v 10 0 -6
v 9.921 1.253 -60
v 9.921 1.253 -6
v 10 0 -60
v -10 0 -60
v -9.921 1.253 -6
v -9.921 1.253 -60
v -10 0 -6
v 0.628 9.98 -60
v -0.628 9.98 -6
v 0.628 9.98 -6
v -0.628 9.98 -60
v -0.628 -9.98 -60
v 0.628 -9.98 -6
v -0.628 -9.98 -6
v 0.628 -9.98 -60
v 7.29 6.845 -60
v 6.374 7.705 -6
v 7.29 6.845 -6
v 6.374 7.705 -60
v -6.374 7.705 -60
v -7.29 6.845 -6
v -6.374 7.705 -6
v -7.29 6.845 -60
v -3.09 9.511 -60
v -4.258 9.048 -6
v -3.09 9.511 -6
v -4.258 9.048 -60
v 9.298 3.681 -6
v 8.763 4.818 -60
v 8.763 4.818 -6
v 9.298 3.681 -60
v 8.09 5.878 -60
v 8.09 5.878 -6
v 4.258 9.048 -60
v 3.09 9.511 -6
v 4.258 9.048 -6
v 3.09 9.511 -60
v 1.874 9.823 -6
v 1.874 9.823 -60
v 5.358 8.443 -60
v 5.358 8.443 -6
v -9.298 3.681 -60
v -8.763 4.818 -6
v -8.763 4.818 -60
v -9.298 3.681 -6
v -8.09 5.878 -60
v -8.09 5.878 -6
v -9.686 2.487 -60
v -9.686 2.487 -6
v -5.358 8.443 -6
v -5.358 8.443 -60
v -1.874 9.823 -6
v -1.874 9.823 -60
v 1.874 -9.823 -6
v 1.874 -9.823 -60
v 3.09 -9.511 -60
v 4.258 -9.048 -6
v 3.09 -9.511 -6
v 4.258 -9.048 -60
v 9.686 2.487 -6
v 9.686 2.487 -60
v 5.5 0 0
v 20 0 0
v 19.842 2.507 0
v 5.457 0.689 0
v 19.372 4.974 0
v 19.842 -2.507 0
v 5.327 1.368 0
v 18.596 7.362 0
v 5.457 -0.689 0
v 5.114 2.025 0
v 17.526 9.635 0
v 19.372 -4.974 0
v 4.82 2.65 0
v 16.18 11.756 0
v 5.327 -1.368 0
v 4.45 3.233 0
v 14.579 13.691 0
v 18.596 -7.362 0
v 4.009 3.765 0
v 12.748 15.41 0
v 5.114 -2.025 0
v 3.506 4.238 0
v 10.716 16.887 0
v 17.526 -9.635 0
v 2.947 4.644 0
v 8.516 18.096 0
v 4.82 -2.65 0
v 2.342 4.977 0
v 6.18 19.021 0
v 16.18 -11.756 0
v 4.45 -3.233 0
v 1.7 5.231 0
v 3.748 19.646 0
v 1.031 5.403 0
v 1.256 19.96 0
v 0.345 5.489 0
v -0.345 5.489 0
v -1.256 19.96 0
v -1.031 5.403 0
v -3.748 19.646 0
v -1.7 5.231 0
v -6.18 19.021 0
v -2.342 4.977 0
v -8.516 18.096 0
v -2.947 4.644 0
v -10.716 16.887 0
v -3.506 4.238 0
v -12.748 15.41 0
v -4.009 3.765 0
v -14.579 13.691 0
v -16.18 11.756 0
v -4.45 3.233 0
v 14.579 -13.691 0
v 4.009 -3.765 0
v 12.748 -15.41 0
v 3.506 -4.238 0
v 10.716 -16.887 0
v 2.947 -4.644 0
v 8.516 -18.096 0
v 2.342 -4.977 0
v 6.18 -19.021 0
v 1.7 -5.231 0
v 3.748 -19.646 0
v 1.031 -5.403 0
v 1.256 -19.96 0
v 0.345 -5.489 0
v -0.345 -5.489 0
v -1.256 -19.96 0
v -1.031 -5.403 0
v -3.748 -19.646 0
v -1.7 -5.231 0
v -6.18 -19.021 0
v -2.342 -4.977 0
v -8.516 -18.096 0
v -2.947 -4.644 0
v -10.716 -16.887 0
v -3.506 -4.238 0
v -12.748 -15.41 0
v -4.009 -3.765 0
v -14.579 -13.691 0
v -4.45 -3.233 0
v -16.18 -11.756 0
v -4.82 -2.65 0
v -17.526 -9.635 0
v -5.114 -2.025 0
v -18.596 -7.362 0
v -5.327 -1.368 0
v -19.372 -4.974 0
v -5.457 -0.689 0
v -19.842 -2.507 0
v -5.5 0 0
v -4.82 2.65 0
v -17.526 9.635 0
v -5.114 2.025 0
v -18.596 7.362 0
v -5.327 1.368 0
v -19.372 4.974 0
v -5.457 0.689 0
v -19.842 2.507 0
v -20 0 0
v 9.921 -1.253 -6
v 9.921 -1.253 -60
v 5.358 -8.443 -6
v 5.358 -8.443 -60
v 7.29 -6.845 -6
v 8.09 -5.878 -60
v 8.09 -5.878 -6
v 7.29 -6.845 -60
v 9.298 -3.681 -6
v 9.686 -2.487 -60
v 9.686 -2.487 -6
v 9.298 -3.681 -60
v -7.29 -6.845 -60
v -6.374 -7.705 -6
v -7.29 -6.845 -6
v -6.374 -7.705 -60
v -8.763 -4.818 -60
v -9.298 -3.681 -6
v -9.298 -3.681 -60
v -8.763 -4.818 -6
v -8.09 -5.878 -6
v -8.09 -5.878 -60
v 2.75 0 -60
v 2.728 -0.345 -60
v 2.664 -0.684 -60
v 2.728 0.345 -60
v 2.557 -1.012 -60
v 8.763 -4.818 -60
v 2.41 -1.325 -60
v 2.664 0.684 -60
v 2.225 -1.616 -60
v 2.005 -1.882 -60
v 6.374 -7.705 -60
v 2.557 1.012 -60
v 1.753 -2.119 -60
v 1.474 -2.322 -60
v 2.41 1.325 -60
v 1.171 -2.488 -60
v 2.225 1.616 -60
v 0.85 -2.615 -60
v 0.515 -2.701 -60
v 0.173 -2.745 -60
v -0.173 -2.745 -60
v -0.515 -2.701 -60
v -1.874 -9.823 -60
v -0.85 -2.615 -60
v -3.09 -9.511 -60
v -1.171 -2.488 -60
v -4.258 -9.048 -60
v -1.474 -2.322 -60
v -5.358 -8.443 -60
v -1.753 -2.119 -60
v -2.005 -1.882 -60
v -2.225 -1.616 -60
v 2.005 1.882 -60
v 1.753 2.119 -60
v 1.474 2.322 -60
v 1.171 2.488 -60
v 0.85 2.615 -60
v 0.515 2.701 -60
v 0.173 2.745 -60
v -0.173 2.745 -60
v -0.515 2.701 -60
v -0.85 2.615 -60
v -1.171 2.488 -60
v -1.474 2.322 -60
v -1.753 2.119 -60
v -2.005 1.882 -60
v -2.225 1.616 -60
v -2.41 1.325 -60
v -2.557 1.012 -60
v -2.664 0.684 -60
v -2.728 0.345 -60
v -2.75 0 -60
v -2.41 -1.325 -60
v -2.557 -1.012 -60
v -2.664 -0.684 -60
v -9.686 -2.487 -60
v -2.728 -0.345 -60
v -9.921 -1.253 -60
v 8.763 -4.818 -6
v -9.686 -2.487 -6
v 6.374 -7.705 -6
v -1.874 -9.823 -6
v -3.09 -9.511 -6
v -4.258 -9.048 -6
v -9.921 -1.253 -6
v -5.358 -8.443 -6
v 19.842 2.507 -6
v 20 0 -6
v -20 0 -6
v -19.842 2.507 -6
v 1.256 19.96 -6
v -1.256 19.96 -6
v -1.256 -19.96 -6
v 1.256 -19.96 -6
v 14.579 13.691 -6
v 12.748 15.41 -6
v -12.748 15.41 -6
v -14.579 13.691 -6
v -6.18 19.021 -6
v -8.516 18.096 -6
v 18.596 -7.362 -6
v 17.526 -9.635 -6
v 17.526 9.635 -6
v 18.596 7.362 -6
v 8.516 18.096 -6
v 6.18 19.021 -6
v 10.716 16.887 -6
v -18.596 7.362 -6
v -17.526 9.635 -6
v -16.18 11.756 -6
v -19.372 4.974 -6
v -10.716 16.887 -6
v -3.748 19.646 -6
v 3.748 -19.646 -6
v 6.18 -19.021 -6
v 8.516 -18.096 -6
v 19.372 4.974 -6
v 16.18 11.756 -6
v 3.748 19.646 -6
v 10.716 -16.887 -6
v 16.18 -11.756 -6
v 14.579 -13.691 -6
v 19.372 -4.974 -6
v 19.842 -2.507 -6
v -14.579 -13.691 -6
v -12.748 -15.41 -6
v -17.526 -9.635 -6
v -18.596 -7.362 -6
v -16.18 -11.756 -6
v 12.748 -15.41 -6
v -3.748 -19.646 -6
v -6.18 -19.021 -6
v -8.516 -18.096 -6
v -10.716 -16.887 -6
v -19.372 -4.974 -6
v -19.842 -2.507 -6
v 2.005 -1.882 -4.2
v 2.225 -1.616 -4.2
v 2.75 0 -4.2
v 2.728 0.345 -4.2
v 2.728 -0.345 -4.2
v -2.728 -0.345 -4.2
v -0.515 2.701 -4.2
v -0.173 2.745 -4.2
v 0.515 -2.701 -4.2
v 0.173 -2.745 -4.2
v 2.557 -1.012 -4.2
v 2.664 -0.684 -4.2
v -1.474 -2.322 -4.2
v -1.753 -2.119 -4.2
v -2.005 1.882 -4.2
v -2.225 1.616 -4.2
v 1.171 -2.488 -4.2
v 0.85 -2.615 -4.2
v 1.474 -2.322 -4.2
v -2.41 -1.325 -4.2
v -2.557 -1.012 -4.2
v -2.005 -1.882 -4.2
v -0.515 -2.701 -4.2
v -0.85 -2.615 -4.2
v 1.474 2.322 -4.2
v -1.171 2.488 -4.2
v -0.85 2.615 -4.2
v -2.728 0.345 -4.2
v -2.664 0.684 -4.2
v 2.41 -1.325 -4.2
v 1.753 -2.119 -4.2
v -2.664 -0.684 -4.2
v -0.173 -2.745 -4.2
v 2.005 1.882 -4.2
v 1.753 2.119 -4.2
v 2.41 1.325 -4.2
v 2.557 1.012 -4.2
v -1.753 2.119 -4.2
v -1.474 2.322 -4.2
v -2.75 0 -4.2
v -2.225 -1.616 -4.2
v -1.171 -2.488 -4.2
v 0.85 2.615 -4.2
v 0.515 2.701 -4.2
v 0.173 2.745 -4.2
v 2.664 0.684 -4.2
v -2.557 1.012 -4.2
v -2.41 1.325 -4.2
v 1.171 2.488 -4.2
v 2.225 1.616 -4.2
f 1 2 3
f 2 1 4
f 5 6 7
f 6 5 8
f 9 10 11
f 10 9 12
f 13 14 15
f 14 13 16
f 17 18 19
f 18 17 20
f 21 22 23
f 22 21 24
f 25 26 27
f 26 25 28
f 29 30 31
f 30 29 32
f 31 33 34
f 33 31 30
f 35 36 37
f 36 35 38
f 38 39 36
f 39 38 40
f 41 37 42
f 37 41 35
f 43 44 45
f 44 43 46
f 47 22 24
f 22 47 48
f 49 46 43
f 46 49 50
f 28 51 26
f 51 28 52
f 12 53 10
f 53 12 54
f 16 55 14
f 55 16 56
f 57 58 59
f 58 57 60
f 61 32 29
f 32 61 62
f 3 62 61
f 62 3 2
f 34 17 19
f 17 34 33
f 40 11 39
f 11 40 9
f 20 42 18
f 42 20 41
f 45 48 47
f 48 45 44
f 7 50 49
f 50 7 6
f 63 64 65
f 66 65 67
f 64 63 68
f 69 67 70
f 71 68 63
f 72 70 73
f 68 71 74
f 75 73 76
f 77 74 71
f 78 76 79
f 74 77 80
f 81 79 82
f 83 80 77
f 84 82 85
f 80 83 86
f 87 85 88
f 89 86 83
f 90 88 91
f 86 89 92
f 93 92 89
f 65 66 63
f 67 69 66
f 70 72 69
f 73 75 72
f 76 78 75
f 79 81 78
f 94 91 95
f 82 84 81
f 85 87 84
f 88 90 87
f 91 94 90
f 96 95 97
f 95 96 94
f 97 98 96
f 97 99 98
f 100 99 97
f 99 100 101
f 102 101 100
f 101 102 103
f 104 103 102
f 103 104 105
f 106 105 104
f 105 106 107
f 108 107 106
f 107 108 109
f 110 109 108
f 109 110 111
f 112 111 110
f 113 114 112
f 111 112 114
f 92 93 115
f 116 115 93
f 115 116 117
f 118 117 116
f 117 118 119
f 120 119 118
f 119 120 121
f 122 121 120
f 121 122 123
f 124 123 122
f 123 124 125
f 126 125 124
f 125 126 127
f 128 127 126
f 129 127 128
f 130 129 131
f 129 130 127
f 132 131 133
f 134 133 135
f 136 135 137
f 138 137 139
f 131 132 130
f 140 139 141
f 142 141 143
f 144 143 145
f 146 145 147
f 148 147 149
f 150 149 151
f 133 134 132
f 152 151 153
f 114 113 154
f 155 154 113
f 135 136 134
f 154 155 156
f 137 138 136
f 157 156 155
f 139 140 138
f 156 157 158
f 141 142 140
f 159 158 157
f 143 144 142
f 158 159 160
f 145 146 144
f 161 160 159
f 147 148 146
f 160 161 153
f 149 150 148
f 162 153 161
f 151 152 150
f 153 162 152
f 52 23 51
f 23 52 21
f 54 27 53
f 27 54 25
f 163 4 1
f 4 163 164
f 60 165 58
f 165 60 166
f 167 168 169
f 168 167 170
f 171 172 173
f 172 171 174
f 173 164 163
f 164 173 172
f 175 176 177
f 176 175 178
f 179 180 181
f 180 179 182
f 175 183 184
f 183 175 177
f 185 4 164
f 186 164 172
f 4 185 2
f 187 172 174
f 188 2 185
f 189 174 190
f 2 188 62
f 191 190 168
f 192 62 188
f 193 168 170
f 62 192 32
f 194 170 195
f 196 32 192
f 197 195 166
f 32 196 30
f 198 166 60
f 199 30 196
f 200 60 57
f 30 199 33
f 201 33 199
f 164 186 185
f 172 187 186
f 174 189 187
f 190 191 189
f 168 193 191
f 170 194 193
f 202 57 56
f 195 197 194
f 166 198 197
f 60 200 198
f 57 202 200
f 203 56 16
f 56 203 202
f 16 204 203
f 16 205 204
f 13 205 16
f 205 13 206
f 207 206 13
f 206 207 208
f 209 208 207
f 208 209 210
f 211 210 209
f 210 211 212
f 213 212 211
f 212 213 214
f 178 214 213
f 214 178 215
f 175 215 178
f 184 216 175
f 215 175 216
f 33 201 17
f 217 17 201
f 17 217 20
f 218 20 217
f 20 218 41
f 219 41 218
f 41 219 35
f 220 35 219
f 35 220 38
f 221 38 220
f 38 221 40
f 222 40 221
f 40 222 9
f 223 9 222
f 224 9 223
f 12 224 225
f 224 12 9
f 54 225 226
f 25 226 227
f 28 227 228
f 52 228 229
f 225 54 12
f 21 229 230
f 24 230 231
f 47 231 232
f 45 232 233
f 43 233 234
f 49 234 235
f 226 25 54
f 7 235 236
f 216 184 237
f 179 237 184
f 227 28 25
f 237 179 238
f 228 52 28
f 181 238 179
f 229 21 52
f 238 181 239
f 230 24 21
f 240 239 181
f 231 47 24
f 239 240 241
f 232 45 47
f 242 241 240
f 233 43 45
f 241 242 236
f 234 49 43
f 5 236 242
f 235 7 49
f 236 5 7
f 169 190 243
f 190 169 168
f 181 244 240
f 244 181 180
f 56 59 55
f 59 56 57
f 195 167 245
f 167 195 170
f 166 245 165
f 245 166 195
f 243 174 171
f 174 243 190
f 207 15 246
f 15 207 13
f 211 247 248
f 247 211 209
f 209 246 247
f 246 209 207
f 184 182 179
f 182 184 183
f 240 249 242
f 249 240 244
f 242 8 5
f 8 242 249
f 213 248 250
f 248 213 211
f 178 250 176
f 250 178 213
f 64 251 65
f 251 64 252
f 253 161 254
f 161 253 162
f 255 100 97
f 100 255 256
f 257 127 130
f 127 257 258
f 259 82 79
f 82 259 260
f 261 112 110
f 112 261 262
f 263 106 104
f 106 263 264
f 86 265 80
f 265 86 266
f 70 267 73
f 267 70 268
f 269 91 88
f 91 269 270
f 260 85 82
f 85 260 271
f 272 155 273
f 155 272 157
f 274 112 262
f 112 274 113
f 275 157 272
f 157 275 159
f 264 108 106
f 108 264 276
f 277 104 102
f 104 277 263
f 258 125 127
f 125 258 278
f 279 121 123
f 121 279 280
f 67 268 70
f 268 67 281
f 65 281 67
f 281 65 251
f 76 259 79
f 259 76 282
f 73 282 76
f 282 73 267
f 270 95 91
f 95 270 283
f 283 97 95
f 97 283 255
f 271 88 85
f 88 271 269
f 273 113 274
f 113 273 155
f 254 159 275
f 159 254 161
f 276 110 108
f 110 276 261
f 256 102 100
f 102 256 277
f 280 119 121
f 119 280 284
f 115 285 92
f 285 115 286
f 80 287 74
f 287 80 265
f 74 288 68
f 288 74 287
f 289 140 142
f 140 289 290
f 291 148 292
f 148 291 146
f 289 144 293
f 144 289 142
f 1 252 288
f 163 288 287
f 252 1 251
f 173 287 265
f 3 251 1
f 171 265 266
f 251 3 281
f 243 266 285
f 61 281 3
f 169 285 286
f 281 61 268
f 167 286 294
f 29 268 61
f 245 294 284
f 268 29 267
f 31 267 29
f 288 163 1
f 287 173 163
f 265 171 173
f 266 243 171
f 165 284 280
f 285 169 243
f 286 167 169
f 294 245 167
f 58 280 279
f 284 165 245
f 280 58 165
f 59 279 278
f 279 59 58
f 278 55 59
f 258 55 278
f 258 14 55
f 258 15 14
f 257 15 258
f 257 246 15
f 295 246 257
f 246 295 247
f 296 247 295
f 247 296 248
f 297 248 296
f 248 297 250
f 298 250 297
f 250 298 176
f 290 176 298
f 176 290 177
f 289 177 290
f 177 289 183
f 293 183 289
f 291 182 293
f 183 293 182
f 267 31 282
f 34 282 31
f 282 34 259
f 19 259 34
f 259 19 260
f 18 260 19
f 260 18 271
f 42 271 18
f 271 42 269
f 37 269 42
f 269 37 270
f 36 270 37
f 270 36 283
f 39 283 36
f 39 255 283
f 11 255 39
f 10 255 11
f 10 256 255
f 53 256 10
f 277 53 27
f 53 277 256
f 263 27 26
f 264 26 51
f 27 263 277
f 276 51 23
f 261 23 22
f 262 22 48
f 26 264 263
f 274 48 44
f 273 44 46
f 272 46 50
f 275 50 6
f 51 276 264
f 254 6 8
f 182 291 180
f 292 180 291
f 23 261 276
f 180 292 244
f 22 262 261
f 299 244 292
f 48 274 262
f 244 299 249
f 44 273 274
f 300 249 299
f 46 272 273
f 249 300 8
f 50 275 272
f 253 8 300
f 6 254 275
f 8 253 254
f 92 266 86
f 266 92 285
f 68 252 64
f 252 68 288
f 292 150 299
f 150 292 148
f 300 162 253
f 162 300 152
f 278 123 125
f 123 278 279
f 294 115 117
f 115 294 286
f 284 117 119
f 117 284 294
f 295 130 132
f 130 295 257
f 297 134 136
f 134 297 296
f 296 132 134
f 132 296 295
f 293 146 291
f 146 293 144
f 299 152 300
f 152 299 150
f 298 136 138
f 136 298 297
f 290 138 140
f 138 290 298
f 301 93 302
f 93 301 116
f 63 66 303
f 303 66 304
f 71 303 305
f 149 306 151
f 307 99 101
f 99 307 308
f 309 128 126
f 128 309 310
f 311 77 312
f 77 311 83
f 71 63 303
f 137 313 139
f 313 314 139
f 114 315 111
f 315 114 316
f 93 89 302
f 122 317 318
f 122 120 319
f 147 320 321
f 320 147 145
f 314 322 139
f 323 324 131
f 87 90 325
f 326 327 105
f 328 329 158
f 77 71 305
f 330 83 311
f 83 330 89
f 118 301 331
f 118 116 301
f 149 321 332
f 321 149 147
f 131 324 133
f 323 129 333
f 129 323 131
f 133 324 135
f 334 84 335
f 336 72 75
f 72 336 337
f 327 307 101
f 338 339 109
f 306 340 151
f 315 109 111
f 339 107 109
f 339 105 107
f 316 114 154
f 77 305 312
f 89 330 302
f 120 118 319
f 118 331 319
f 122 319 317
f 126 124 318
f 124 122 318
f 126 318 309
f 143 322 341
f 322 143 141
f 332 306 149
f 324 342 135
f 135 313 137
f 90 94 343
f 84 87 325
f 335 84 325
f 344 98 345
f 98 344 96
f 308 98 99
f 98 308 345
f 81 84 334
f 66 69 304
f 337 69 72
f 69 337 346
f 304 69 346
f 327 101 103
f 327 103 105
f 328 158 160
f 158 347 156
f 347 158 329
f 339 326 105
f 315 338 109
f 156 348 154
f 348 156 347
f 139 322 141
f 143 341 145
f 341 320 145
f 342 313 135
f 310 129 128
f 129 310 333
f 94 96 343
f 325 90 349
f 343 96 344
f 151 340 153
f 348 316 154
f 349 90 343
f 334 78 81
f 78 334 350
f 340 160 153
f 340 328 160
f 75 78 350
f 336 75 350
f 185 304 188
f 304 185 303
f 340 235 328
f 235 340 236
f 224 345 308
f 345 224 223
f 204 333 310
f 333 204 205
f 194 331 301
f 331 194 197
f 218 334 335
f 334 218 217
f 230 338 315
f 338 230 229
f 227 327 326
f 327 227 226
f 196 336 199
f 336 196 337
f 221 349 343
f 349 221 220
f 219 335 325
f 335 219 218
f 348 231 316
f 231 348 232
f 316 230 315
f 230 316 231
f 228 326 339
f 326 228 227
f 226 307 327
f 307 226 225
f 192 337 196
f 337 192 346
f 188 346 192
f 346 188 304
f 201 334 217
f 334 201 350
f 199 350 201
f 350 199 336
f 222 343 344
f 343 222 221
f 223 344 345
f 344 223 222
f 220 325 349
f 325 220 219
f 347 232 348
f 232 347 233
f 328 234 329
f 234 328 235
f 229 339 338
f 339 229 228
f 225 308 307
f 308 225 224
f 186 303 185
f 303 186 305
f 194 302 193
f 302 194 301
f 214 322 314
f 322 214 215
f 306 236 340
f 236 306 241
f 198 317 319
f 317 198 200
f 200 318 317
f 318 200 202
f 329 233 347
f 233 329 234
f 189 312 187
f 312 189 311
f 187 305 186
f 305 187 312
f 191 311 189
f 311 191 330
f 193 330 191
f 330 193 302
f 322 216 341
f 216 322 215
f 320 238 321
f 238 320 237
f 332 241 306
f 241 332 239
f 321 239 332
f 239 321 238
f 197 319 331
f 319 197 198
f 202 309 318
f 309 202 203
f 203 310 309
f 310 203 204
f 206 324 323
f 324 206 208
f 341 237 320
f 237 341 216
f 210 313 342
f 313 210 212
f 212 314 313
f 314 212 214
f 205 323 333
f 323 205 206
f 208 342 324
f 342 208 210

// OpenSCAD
$fn = 50;


difference() {
	union() {
		translate(v = [0, 0, -60.0000000000]) {
			cylinder(h = 60, r = 10.0000000000);
		}
		translate(v = [0, 0, -6.0000000000]) {
			cylinder(h = 6, r = 20.0000000000);
		}
	}
	union() {
		translate(v = [0, 0, 0]) {
			rotate(a = [0, 0, 0]) {
				difference() {
					union() {
						#translate(v = [0, 0, -60.0000000000]) {
							cylinder(h = 60, r = 2.2500000000);
						}
						#translate(v = [0, 0, -4.2000000000]) {
							cylinder(h = 4.2000000000, r1 = 2.7500000000, r2 = 5.5000000000);
						}
						#translate(v = [0, 0, -60.0000000000]) {
							cylinder(h = 60, r = 2.7500000000);
						}
						#translate(v = [0, 0, -60.0000000000]) {
							cylinder(h = 60, r = 2.2500000000);
						}
					}
					union();
				}
			}
		}
	}
}
